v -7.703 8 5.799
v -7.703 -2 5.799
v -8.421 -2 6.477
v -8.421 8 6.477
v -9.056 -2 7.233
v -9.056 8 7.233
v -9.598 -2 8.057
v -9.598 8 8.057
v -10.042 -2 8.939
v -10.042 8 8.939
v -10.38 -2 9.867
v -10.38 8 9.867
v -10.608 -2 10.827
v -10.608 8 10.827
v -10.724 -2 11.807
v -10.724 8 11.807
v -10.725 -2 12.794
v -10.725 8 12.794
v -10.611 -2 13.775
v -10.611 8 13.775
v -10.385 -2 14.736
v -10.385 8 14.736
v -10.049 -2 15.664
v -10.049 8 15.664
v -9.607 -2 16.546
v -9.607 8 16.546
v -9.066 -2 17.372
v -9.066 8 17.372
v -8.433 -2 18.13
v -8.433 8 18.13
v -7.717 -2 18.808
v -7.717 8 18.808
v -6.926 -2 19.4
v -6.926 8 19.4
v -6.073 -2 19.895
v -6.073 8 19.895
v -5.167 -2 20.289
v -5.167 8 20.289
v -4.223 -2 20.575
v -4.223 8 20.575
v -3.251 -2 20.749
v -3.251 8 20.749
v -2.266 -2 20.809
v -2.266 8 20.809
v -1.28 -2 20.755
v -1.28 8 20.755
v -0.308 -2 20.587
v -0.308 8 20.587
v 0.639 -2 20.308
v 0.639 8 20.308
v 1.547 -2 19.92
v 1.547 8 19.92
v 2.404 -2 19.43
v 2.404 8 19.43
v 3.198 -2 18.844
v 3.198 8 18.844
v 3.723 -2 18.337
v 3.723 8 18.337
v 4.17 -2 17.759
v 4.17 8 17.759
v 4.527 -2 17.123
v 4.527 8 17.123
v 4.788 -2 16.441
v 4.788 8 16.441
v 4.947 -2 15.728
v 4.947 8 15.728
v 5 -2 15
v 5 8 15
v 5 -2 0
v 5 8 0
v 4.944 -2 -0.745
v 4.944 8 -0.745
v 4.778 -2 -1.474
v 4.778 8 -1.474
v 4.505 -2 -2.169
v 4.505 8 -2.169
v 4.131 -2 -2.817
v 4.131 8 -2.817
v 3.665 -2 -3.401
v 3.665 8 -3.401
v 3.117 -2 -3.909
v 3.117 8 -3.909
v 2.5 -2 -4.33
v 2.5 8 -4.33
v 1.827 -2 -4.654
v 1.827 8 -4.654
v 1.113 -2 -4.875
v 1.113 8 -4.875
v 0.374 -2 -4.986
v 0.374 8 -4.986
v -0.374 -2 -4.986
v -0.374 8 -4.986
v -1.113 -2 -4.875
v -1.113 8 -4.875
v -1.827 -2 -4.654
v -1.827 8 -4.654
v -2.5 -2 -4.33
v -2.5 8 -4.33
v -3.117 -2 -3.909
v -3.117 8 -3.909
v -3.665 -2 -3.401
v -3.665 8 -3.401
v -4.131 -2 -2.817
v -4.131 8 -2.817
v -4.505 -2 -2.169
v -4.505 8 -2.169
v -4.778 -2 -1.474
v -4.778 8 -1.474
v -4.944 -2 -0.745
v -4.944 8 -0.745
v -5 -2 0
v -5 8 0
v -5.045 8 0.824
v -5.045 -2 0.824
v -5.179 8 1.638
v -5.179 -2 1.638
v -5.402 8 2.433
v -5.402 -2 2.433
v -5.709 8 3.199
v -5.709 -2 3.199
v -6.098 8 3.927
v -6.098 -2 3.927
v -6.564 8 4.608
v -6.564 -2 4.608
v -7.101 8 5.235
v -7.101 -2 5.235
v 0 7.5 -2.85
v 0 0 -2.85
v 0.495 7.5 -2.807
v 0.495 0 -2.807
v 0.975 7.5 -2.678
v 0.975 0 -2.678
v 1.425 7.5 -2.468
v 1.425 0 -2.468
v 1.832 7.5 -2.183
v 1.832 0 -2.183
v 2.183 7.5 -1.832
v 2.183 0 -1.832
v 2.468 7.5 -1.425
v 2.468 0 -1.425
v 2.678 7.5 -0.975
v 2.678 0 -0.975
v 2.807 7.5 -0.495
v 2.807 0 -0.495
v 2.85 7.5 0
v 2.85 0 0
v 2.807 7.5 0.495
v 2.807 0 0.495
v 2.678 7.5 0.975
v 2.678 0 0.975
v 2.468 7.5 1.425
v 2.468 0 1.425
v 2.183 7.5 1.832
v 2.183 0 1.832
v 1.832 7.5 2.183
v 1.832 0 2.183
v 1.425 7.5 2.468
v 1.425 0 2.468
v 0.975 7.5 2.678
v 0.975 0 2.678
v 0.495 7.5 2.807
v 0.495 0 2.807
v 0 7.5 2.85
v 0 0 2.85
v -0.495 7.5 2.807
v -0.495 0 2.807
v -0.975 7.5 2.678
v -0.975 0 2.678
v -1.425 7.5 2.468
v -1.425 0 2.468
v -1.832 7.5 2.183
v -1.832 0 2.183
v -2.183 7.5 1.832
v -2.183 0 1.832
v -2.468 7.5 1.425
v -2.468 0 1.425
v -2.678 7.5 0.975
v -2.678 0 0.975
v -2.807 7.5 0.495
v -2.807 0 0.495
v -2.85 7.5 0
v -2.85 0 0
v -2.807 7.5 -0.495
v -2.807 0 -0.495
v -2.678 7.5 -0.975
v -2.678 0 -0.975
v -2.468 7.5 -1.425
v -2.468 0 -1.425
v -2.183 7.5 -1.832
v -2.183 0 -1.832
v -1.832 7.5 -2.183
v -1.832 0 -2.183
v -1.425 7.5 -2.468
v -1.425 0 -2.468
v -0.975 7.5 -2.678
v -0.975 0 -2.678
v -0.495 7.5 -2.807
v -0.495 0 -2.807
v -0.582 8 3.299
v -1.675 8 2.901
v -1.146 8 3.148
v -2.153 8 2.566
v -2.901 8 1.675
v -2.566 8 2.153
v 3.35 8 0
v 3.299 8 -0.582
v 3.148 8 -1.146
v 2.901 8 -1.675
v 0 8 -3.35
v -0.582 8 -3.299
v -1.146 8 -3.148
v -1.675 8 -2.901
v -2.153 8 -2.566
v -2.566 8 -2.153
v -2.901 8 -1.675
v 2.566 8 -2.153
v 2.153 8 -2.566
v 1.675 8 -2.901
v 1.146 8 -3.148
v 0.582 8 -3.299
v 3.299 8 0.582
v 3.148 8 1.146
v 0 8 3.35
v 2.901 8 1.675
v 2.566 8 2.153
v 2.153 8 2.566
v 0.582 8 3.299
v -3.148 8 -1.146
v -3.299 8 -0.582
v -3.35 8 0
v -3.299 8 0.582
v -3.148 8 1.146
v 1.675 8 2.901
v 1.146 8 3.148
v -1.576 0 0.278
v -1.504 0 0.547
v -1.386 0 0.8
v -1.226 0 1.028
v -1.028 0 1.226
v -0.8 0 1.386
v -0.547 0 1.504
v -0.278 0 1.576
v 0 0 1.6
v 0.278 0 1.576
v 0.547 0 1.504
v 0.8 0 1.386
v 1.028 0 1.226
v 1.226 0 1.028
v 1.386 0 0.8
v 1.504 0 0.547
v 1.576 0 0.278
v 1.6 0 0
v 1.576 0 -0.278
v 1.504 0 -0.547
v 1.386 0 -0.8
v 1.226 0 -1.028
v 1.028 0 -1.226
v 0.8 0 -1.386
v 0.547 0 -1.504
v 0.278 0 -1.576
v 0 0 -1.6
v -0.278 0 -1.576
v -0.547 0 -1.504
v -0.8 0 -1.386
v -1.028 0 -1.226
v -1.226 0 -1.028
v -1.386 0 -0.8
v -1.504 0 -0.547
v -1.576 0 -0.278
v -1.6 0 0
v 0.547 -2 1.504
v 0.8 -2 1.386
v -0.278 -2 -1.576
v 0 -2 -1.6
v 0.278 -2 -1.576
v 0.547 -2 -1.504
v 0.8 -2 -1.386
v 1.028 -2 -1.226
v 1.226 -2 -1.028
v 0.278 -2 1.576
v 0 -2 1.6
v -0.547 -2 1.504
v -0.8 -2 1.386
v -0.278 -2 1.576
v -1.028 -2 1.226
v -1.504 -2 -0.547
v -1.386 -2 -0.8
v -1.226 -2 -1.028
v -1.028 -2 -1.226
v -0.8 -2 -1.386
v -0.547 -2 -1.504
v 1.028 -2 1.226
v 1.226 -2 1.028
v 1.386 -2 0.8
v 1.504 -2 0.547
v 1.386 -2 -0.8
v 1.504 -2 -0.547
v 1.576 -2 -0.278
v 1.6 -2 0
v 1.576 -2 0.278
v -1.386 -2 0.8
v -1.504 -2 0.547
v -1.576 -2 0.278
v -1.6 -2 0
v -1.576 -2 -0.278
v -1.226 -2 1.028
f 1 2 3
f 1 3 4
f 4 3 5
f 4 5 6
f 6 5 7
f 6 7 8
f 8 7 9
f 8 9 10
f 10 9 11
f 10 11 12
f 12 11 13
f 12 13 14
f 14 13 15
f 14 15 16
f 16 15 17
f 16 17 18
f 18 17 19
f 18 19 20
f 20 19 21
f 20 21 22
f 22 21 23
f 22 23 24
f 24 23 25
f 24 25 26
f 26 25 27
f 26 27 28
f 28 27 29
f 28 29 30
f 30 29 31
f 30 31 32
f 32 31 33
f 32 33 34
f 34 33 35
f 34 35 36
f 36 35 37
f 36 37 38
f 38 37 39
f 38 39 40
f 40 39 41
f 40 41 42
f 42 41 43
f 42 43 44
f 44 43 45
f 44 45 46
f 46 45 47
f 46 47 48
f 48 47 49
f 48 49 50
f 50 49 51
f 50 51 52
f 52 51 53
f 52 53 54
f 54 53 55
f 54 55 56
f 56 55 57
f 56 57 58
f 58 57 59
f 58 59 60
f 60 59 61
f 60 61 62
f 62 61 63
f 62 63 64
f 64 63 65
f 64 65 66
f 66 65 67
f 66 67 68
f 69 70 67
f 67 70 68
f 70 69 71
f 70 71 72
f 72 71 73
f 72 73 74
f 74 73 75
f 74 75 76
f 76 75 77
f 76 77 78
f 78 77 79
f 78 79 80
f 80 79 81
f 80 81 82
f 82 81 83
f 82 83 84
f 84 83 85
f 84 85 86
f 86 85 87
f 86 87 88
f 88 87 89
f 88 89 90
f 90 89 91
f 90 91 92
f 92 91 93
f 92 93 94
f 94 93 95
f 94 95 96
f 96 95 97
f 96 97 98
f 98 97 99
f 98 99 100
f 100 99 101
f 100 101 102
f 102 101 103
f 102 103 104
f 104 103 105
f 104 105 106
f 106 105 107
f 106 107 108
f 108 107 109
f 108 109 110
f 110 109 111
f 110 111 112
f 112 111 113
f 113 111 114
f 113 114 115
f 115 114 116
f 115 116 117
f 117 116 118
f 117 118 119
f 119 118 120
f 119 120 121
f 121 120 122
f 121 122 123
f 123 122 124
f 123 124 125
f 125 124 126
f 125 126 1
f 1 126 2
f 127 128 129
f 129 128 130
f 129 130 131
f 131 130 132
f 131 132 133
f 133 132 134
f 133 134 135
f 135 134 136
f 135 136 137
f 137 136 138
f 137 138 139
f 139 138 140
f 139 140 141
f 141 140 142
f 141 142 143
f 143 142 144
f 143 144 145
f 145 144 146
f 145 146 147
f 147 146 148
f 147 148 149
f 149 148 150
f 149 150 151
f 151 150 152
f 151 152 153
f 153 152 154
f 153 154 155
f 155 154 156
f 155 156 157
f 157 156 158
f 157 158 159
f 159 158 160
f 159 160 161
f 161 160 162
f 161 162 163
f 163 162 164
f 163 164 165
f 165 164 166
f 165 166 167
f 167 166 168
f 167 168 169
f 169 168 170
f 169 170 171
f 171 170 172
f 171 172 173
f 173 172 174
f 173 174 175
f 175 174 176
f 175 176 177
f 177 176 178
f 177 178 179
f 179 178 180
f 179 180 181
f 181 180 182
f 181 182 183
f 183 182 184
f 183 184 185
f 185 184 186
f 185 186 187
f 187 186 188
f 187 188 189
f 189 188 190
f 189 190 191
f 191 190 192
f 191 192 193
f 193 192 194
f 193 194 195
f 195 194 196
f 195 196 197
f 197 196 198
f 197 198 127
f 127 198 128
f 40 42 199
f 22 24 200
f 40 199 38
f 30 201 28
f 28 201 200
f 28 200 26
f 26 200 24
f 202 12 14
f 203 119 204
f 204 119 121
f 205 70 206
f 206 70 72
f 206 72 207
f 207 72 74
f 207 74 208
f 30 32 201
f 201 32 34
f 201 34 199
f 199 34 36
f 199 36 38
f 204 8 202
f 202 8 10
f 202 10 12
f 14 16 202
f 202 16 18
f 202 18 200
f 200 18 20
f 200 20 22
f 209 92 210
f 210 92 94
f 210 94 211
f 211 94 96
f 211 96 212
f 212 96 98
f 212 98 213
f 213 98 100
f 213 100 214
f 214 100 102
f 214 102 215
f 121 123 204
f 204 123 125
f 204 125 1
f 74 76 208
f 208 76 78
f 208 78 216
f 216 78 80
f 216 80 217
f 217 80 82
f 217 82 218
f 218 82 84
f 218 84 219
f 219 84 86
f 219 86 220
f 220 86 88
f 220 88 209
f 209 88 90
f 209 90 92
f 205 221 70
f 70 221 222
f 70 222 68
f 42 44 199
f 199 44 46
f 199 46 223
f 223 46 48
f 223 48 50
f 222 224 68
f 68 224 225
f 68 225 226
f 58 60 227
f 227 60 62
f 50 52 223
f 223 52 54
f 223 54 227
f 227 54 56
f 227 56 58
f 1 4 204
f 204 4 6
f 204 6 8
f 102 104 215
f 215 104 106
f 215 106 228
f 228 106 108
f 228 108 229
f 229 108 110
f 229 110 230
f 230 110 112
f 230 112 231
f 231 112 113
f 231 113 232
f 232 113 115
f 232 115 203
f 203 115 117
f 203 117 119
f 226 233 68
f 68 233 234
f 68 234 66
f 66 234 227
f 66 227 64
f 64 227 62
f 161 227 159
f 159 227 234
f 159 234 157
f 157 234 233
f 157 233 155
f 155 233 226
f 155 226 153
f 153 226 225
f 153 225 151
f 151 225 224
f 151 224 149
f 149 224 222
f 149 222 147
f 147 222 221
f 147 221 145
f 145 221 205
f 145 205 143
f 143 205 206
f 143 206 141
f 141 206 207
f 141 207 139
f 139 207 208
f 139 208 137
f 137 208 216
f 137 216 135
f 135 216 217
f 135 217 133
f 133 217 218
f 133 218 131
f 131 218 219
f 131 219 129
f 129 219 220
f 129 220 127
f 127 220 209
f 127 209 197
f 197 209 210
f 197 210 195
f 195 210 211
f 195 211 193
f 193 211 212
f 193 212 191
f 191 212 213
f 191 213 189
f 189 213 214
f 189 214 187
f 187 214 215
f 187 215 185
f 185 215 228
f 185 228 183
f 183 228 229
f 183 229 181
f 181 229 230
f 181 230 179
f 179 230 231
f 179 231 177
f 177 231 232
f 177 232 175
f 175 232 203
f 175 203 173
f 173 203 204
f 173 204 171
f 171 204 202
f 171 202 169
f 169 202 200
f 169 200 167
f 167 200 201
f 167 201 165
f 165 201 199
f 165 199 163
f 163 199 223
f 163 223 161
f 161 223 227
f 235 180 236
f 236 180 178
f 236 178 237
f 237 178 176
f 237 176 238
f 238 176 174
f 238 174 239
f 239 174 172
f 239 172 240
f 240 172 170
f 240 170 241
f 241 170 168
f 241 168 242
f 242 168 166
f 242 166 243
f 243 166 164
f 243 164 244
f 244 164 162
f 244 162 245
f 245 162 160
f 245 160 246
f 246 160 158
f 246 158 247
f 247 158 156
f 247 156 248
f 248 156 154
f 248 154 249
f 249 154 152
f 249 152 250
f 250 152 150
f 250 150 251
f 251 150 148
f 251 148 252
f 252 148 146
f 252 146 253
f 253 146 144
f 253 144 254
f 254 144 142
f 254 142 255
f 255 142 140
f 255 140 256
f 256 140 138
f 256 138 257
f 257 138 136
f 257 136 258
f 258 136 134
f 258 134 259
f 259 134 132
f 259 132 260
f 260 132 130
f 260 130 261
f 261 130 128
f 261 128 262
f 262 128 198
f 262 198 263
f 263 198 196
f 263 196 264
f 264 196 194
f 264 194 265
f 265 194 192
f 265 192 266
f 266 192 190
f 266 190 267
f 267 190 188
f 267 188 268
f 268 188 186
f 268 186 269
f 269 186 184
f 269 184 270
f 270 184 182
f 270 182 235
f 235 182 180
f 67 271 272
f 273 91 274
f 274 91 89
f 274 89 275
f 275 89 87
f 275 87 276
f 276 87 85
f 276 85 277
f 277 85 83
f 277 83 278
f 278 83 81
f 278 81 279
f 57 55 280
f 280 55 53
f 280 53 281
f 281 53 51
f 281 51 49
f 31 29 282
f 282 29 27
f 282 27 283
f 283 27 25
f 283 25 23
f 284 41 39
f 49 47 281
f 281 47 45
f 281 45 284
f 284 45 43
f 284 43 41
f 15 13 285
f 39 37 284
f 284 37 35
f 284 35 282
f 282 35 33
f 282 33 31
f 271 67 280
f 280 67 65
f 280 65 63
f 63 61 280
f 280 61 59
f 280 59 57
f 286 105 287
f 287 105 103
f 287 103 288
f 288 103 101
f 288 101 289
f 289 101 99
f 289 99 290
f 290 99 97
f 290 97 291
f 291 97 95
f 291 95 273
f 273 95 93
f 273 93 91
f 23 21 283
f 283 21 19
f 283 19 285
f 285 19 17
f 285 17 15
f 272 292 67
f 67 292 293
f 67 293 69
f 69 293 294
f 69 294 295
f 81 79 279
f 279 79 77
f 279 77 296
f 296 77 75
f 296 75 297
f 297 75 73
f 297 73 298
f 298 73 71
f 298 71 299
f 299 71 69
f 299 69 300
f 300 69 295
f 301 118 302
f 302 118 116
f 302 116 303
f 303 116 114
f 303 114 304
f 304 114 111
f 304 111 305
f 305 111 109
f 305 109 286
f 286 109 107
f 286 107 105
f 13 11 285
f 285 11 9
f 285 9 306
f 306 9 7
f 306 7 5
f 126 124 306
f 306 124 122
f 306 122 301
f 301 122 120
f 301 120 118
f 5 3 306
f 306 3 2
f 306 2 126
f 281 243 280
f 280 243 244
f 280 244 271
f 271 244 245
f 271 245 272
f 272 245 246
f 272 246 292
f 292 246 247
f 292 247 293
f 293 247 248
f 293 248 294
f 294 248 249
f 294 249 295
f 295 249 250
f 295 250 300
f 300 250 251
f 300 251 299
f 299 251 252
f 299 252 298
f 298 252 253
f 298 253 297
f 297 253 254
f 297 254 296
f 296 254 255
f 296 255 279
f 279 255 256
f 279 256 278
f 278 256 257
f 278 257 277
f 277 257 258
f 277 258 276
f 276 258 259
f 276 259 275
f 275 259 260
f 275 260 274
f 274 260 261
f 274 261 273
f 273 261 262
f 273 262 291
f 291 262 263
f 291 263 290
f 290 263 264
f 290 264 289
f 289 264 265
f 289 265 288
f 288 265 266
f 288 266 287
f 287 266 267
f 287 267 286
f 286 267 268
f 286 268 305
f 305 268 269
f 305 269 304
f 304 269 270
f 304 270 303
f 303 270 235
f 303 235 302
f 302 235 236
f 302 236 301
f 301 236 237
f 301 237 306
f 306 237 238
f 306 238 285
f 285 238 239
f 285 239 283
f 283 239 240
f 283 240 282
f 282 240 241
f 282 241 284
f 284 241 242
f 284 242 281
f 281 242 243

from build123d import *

# Parameters (mm, degrees)
SKETCH2_R           = 2.85
BOSS_EXTRUDE1_DEPTH = 8
CHAMFER1_SIZE       = 0.5
BOSS_EXTRUDE3_START = -2
SKETCH4_R           = 1.6
BOSS_EXTRUDE3_DEPTH = 2


with BuildPart() as part:
    # Sketch2 → Boss-Extrude1 (new body)
    with BuildSketch(Plane(origin=(0, 0, 0), x_dir=(1, 0, 0), z_dir=(0, 1, 0))):
        with BuildLine():
            ThreePointArc((5, 0), (0, 5), (-5, 0))
            ThreePointArc((-5, 0), (-5.709068994, -3.199165875), (-7.703467842, -5.799130177))
            ThreePointArc((-7.703467842, -5.799130177), (-8.760764425, -17.760055771), (3.19780255, -18.843703794))
            ThreePointArc((3.19780255, -18.843703794), (4.527085859, -17.122614809), (5, -15))
            Line((5, -15), (5, 0))
        make_face()
        with Locations(Location((0, 0, 0), (0, 0, 270))):
            Circle(SKETCH2_R, mode=Mode.SUBTRACT)
    extrude(amount=BOSS_EXTRUDE1_DEPTH)

    # Chamfer1
    chamfer1_edges = [part.edges().sort_by_distance(p)[0] for p in [
        (0, 8, -2.85),
    ]]
    chamfer(chamfer1_edges, length=CHAMFER1_SIZE)

    # Sketch4 → Boss-Extrude3 (add)
    with BuildSketch(Plane(origin=(0, 0, 0), x_dir=(1, 0, 0), z_dir=(0, 1, 0)).offset(BOSS_EXTRUDE3_START)):
        with BuildLine():
            Line((5, -15), (5, 0))
            ThreePointArc((5, 0), (0, 5), (-5, 0))
            ThreePointArc((-5, 0), (-5.709068994, -3.199165875), (-7.703467842, -5.799130177))
            ThreePointArc((-7.703467842, -5.799130177), (-8.760764425, -17.760055771), (3.19780255, -18.843703794))
            ThreePointArc((3.19780255, -18.843703794), (4.527085859, -17.122614809), (5, -15))
        make_face()
        with Locations(Location((0, 0, 0), (0, 0, 270))):
            Circle(SKETCH4_R, mode=Mode.SUBTRACT)
    extrude(amount=BOSS_EXTRUDE3_DEPTH)


solid = part.part
